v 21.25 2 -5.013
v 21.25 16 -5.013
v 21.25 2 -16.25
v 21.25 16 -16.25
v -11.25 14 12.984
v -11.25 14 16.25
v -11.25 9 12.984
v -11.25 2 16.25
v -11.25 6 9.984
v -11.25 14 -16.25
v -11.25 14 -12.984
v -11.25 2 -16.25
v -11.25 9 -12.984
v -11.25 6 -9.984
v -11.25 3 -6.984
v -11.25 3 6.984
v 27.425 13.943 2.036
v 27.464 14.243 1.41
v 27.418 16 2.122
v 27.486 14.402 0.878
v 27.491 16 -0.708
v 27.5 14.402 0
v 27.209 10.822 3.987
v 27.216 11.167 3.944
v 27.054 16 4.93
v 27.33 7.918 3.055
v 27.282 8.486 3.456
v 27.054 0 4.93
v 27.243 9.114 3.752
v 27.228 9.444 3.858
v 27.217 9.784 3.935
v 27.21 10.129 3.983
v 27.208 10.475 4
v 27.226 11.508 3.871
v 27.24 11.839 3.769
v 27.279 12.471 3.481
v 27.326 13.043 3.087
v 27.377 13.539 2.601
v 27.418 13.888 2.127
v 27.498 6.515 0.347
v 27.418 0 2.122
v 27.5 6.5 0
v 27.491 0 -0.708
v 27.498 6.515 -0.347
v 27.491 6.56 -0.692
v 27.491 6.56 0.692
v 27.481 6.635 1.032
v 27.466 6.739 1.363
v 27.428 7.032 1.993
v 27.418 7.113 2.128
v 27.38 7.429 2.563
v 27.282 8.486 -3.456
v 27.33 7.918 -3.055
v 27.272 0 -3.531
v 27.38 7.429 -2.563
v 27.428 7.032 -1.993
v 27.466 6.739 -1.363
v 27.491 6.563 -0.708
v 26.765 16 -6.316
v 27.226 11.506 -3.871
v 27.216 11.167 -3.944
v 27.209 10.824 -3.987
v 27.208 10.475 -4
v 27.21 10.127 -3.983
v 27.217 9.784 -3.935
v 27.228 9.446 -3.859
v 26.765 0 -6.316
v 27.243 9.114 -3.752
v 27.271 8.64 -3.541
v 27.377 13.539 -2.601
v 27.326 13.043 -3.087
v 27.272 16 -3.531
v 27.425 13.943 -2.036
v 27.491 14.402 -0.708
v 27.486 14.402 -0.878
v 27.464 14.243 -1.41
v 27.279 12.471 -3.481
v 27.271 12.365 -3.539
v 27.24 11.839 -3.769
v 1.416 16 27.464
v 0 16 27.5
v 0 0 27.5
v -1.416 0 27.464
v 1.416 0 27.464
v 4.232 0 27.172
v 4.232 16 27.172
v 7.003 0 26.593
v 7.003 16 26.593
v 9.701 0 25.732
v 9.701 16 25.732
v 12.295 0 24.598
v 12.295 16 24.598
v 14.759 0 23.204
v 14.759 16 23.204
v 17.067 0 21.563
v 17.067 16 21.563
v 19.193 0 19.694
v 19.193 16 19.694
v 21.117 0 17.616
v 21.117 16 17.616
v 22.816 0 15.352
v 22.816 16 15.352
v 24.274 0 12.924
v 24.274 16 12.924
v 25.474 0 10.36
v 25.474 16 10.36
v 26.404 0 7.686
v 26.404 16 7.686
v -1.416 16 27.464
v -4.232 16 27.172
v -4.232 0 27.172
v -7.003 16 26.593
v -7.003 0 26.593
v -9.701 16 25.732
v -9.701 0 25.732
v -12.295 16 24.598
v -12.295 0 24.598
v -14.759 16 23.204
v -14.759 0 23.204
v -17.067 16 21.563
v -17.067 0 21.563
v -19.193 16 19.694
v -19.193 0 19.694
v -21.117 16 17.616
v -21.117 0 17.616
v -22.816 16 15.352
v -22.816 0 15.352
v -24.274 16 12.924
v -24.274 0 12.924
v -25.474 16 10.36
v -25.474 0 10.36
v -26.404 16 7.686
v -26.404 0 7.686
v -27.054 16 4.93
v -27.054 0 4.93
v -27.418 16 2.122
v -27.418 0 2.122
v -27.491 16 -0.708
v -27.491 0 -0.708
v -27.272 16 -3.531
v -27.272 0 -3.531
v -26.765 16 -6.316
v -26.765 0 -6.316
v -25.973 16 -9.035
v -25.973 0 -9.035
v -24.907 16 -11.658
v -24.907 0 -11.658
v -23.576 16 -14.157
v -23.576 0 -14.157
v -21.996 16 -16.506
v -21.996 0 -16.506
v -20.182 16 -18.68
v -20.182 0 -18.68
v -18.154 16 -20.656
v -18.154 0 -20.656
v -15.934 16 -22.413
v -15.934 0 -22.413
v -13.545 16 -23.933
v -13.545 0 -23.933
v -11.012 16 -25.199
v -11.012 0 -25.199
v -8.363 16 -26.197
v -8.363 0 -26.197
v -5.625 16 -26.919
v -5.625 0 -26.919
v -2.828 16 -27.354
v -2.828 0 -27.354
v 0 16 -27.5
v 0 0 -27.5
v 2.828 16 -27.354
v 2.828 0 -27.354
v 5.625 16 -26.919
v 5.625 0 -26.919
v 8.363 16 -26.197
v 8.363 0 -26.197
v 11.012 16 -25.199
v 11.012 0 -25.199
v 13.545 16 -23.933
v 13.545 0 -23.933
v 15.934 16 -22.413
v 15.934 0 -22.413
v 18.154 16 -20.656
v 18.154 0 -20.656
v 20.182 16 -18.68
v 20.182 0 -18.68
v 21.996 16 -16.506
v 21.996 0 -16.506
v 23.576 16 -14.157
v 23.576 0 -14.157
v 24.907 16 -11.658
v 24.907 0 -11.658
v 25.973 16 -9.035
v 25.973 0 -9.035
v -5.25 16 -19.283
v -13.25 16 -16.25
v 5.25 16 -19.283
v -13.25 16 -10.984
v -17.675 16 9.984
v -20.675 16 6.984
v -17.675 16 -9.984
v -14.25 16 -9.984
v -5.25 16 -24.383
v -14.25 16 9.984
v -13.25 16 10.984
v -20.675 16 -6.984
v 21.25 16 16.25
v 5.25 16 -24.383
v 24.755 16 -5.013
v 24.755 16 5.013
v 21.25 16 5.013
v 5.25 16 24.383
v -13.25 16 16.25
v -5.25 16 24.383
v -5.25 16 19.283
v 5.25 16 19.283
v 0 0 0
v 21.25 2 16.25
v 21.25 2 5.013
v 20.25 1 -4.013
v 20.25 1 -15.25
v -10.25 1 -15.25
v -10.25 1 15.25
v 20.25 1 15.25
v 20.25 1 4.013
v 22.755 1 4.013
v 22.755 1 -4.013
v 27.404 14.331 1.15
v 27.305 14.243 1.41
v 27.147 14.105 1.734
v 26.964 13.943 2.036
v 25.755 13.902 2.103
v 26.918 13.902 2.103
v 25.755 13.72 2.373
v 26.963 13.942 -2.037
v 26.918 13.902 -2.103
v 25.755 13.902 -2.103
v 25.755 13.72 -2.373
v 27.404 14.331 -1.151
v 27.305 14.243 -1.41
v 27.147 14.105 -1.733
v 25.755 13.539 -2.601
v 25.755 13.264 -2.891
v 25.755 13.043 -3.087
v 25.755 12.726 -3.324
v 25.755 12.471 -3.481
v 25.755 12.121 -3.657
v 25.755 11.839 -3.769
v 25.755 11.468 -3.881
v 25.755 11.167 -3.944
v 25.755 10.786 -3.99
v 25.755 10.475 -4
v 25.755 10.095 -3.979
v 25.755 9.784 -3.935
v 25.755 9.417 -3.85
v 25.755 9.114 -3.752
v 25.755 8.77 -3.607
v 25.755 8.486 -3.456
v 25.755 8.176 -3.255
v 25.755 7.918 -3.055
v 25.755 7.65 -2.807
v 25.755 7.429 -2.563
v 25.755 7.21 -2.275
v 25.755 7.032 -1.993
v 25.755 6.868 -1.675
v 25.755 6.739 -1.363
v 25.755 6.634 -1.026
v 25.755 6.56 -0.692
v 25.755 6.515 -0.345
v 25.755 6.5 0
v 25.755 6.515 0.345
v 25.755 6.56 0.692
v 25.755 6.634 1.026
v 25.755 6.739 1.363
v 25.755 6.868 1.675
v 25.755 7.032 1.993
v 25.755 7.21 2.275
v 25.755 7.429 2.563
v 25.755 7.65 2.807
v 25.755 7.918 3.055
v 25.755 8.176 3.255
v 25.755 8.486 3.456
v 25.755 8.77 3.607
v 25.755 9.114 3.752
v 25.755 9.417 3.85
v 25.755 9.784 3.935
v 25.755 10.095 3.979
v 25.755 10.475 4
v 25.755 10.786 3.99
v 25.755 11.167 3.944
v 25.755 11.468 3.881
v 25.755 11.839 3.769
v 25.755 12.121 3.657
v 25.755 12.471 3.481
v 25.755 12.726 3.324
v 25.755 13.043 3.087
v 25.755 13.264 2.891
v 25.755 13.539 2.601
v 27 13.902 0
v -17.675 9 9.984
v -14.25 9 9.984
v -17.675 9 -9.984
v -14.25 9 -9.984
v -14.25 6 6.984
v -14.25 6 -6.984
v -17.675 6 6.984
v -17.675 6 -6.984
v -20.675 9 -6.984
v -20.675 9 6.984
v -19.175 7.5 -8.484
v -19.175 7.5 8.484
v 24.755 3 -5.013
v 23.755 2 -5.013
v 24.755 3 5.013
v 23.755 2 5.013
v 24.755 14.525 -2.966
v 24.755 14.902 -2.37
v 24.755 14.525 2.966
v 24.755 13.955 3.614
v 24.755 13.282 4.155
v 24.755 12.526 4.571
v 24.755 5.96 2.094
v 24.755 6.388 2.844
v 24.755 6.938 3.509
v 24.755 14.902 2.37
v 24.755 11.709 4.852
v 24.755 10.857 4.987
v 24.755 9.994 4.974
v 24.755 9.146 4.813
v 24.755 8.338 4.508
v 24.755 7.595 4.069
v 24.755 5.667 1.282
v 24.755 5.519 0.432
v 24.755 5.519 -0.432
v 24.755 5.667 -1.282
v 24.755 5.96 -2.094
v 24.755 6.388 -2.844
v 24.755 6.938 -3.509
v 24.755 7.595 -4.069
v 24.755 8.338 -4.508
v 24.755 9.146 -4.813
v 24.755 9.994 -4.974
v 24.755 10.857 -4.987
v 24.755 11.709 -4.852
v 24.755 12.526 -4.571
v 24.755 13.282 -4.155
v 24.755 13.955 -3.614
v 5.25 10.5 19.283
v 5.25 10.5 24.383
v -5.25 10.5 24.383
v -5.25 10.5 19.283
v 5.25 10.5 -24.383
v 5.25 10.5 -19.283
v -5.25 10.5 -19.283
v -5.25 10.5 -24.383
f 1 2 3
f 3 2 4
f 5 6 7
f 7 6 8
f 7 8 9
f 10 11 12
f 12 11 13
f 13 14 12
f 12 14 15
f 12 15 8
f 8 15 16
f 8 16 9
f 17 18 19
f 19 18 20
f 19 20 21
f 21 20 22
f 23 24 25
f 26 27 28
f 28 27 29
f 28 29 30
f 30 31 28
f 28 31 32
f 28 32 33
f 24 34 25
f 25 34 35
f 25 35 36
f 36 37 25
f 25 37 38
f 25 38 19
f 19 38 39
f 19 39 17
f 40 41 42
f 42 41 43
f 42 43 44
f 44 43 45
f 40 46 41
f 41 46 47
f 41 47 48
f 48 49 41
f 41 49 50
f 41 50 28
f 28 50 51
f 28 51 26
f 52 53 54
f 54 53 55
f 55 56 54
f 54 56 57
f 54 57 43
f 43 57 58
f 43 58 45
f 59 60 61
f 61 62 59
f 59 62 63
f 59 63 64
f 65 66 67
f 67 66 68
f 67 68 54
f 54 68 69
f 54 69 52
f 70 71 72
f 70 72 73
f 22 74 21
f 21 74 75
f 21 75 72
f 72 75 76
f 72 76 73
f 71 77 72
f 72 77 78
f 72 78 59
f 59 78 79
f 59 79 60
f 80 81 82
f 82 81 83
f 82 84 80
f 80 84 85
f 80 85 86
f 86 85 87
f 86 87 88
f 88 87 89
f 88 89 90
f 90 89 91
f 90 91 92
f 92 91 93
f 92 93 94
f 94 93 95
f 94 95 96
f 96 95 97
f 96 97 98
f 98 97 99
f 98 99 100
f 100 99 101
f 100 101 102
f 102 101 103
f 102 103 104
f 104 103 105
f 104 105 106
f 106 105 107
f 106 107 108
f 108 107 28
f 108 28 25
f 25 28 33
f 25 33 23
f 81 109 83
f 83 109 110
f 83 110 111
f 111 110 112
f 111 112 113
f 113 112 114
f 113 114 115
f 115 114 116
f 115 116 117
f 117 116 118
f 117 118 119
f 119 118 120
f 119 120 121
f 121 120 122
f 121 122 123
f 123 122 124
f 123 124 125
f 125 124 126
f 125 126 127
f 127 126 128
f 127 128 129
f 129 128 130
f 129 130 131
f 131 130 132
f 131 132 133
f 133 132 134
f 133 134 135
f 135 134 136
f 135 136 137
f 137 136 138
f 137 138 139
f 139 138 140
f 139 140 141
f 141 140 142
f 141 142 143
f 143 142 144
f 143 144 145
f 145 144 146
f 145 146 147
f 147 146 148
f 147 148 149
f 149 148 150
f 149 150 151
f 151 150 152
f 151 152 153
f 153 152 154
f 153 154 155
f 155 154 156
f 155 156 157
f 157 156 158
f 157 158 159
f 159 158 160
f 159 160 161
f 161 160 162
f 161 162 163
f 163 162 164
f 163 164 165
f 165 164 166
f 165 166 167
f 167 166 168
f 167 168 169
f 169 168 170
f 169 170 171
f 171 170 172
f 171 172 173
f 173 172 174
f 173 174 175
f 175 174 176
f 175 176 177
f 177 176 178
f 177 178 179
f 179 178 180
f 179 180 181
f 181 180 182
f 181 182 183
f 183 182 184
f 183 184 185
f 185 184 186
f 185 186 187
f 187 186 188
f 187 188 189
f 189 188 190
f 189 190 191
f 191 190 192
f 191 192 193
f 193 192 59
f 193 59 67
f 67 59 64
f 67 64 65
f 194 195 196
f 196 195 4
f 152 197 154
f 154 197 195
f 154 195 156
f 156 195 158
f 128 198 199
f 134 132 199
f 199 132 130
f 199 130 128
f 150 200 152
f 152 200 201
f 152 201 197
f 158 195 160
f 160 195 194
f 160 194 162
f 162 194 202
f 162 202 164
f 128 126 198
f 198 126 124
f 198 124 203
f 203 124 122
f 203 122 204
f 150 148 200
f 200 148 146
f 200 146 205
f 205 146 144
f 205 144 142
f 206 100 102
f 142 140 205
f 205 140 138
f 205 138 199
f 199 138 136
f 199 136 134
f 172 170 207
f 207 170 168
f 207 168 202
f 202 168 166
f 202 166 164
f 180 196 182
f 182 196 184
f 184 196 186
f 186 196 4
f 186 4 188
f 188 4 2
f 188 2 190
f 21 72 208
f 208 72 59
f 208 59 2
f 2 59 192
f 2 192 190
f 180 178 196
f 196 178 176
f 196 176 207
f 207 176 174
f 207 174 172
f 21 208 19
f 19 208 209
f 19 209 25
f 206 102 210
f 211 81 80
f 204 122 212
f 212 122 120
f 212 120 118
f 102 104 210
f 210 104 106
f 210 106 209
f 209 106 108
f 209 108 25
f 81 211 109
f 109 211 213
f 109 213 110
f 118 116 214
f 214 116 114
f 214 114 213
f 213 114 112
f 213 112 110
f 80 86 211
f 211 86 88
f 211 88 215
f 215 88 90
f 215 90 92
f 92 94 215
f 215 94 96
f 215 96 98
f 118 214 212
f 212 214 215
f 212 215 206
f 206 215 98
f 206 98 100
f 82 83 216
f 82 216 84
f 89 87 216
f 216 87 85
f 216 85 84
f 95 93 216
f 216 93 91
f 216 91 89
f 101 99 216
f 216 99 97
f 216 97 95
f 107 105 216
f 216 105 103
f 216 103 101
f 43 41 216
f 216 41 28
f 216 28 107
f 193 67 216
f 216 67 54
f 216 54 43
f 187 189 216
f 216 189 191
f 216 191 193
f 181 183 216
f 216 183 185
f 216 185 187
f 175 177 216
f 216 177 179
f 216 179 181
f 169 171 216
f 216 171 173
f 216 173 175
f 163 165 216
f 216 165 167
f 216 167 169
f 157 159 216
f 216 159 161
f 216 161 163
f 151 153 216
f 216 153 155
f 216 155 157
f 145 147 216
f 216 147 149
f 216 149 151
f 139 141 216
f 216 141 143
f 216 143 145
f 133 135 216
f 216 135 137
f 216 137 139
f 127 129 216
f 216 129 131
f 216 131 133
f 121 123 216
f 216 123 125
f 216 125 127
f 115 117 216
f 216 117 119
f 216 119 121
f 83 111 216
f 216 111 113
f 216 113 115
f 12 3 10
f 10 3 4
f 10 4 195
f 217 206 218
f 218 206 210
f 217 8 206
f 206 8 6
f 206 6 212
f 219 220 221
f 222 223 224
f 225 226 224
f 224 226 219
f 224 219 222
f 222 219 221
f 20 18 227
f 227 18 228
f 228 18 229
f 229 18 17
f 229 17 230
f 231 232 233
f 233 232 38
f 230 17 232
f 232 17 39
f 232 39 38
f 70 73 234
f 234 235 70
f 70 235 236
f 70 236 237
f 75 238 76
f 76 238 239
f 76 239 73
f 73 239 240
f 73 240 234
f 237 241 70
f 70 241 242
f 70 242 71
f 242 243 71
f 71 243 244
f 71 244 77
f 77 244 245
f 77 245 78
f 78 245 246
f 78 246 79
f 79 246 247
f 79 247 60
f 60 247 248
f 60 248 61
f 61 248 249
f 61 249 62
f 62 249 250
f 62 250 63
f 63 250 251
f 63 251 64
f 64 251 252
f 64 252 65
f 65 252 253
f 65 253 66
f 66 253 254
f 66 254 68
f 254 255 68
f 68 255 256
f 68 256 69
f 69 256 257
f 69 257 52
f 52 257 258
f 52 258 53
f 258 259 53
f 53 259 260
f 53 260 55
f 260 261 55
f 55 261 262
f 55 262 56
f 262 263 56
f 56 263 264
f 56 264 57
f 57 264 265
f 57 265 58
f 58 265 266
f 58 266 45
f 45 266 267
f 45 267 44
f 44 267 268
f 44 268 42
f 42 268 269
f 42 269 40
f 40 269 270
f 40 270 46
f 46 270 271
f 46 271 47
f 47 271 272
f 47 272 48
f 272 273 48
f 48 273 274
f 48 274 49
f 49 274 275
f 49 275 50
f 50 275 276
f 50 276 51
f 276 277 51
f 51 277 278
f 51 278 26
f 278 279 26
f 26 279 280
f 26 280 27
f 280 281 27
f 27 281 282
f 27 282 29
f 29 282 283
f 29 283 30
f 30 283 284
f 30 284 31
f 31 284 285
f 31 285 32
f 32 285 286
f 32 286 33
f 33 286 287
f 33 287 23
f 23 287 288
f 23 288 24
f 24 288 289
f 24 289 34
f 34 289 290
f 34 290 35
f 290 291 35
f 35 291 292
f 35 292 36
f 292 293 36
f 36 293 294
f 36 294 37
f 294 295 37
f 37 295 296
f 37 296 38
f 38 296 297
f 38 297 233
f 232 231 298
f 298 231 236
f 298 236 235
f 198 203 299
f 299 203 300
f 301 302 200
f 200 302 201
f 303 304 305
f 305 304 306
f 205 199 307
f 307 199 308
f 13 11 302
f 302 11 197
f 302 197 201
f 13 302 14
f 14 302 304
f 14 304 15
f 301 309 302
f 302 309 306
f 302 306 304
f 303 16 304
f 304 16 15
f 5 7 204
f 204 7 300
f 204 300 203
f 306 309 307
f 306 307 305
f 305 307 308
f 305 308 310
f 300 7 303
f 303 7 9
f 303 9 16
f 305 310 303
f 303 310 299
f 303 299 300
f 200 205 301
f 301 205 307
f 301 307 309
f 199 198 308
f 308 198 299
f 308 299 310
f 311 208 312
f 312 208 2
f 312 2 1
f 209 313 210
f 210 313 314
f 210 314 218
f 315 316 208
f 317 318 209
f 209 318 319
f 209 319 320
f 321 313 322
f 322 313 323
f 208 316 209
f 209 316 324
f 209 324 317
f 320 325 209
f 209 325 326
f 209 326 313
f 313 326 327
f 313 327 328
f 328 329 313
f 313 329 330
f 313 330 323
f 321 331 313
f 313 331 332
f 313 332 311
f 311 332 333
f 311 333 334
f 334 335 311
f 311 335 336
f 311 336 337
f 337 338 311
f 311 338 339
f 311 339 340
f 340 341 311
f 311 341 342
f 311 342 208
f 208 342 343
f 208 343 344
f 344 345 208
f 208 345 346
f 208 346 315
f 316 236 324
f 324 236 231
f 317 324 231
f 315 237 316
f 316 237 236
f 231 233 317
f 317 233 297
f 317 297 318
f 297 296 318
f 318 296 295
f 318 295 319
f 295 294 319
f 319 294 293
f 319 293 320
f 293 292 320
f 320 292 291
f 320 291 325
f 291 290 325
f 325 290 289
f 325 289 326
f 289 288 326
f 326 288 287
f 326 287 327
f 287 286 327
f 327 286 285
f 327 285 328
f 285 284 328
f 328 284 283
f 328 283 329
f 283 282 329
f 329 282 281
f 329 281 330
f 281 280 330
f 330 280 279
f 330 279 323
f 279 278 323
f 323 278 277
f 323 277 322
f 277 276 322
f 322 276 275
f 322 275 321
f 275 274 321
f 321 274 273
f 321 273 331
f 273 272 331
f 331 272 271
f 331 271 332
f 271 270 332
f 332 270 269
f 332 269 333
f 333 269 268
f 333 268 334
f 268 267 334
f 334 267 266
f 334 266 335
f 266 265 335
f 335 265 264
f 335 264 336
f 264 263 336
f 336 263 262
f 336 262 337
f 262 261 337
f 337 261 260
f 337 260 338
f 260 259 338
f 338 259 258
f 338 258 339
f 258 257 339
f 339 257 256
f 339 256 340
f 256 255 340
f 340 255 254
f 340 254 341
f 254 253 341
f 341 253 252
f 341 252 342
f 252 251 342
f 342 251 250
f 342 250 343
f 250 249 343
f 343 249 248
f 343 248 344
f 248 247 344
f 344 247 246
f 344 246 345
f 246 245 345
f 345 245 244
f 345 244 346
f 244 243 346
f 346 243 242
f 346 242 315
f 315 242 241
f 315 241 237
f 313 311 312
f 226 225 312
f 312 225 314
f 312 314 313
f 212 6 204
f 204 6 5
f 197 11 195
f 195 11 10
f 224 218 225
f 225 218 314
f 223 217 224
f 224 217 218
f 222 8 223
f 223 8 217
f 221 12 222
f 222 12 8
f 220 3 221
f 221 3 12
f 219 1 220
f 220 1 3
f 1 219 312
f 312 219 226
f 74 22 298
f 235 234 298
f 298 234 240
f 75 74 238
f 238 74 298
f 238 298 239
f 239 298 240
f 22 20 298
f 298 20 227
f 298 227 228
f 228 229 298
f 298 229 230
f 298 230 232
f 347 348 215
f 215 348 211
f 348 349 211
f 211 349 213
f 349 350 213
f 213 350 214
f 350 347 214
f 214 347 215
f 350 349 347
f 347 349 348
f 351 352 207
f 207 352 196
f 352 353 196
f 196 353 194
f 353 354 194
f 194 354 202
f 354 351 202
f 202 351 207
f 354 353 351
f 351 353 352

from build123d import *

# Parameters (mm, degrees)
SKETCH1_R           = 27.5
BOSS_EXTRUDE1_DEPTH = 16
CUT_EXTRUDE1_DEPTH  = 15
CUT_EXTRUDE2_DEPTH  = 15
SKETCH6_W           = 18.849176954
SKETCH6_H           = 19.96776686
CUT_EXTRUDE4_DEPTH  = 10
CHAMFER2_SIZE       = 3
CHAMFER3_SIZE       = 3
SKETCH8_W           = 7.009579852
SKETCH8_H           = 10.026822324
CUT_EXTRUDE5_DEPTH  = 15
CHAMFER4_SIZE       = 1
CHAMFER5_SIZE       = 2
CHAMFER6_SIZE       = 2
CHAMFER7_SIZE       = 1
CHAMFER8_SIZE       = 0.5
SKETCH9_W           = 10.5
SKETCH9_H           = 5.1
CUT_EXTRUDE6_DEPTH  = 5.5


with BuildPart() as part:
    # Sketch1 → Boss-Extrude1 (new body)
    with BuildSketch(Plane(origin=(0, 0, 0), x_dir=(1, 0, 0), z_dir=(0, 1, 0))):
        Circle(SKETCH1_R)
    extrude(amount=BOSS_EXTRUDE1_DEPTH)

    # Sketch3 → Cut-Extrude1 (cut)
    with BuildSketch(Plane(origin=(0, 16, 0), x_dir=(1, 0, 0), z_dir=(0, 1, 0))):
        Polygon((-11.25, -16.25), (16.25, -16.25), (21.25, -16.25), (21.25, 16.25), (16.25, 16.25), (-11.25, 16.25), align=None)
    extrude(amount=-CUT_EXTRUDE1_DEPTH, mode=Mode.SUBTRACT)

    # Sketch4 → Cut-Extrude2 (cut)
    with BuildSketch(Plane.ZY.offset(-21.25)):
        with BuildLine():
            Line((-2.103243144, 13.902406248), (2.103243144, 13.902406248))
            ThreePointArc((2.103243144, 13.902406248), (0, 6.5), (-2.103243144, 13.902406248))
        make_face()
    extrude(amount=-CUT_EXTRUDE2_DEPTH, mode=Mode.SUBTRACT)

    # Sketch6 → Cut-Extrude4 (cut)
    with BuildSketch(Plane(origin=(0, 16, 0), x_dir=(1, 0, 0), z_dir=(0, 1, 0))):
        with Locations((-11.25, 0)):
            Rectangle(SKETCH6_W, SKETCH6_H)
    extrude(amount=-CUT_EXTRUDE4_DEPTH, mode=Mode.SUBTRACT)

    # Chamfer2
    chamfer2_edges = [part.edges().sort_by_distance(p)[0] for p in [
        (-11.25, 6, 0),
        (-11.25, 11, -9.98388343),
        (-11.25, 11, 9.98388343),
        (-15.962294239, 6, 9.98388343),
        (-15.962294239, 6, -9.98388343),
        (-20.674588477, 6, 0),
    ]]
    chamfer(chamfer2_edges, length=CHAMFER2_SIZE)

    # Chamfer3
    chamfer3_edges = [part.edges().sort_by_distance(p)[0] for p in [
        (-20.674588477, 12.5, 9.98388343),
        (-20.674588477, 12.5, -9.98388343),
    ]]
    chamfer(chamfer3_edges, length=CHAMFER3_SIZE)

    # Sketch8 → Cut-Extrude5 (cut)
    with BuildSketch(Plane(origin=(0, 16, 0), x_dir=(1, 0, 0), z_dir=(0, 1, 0))):
        with Locations((21.25, 0)):
            Rectangle(SKETCH8_W, SKETCH8_H)
    extrude(amount=-CUT_EXTRUDE5_DEPTH, mode=Mode.SUBTRACT)

    # Chamfer4
    chamfer4_edges = [part.edges().sort_by_distance(p)[0] for p in [
        (24.754789926, 6.5, 0),
        (24.754789926, 13.902406248, 0),
    ]]
    chamfer(chamfer4_edges, length=CHAMFER4_SIZE)

    # Chamfer5
    chamfer5_edges = [part.edges().sort_by_distance(p)[0] for p in [
        (24.754789926, 1, 0),
    ]]
    chamfer(chamfer5_edges, length=CHAMFER5_SIZE)

    # Chamfer6
    chamfer6_edges = [part.edges().sort_by_distance(p)[0] for p in [
        (-11.25, 16, -14.616941715),
        (-11.25, 16, 14.616941715),
    ]]
    chamfer(chamfer6_edges, length=CHAMFER6_SIZE)

    # Chamfer7
    chamfer7_edges = [part.edges().sort_by_distance(p)[0] for p in [
        (22.002394963, 1, 5.013411162),
        (22.002394963, 1, -5.013411162),
        (5, 1, -16.25),
        (21.25, 1, 10.631705581),
        (5, 1, 16.25),
        (-11.25, 1, 0),
        (21.25, 1, -10.631705581),
    ]]
    chamfer(chamfer7_edges, length=CHAMFER7_SIZE)

    # Chamfer8
    chamfer8_edges = [part.edges().sort_by_distance(p)[0] for p in [
        (27.479855714, 13.902406248, 1.05239247),
    ]]
    chamfer(chamfer8_edges, length=CHAMFER8_SIZE)

    # Sketch9 → Cut-Extrude6 (cut)
    with BuildSketch(Plane(origin=(0, 16, 0), x_dir=(1, 0, 0), z_dir=(0, 1, 0))):
        with Locations((0, 21.833387082)):
            Rectangle(SKETCH9_W, SKETCH9_H)
        with Locations((0, -21.833387082)):
            Rectangle(SKETCH9_W, SKETCH9_H)
    extrude(amount=-CUT_EXTRUDE6_DEPTH, mode=Mode.SUBTRACT)


solid = part.part
